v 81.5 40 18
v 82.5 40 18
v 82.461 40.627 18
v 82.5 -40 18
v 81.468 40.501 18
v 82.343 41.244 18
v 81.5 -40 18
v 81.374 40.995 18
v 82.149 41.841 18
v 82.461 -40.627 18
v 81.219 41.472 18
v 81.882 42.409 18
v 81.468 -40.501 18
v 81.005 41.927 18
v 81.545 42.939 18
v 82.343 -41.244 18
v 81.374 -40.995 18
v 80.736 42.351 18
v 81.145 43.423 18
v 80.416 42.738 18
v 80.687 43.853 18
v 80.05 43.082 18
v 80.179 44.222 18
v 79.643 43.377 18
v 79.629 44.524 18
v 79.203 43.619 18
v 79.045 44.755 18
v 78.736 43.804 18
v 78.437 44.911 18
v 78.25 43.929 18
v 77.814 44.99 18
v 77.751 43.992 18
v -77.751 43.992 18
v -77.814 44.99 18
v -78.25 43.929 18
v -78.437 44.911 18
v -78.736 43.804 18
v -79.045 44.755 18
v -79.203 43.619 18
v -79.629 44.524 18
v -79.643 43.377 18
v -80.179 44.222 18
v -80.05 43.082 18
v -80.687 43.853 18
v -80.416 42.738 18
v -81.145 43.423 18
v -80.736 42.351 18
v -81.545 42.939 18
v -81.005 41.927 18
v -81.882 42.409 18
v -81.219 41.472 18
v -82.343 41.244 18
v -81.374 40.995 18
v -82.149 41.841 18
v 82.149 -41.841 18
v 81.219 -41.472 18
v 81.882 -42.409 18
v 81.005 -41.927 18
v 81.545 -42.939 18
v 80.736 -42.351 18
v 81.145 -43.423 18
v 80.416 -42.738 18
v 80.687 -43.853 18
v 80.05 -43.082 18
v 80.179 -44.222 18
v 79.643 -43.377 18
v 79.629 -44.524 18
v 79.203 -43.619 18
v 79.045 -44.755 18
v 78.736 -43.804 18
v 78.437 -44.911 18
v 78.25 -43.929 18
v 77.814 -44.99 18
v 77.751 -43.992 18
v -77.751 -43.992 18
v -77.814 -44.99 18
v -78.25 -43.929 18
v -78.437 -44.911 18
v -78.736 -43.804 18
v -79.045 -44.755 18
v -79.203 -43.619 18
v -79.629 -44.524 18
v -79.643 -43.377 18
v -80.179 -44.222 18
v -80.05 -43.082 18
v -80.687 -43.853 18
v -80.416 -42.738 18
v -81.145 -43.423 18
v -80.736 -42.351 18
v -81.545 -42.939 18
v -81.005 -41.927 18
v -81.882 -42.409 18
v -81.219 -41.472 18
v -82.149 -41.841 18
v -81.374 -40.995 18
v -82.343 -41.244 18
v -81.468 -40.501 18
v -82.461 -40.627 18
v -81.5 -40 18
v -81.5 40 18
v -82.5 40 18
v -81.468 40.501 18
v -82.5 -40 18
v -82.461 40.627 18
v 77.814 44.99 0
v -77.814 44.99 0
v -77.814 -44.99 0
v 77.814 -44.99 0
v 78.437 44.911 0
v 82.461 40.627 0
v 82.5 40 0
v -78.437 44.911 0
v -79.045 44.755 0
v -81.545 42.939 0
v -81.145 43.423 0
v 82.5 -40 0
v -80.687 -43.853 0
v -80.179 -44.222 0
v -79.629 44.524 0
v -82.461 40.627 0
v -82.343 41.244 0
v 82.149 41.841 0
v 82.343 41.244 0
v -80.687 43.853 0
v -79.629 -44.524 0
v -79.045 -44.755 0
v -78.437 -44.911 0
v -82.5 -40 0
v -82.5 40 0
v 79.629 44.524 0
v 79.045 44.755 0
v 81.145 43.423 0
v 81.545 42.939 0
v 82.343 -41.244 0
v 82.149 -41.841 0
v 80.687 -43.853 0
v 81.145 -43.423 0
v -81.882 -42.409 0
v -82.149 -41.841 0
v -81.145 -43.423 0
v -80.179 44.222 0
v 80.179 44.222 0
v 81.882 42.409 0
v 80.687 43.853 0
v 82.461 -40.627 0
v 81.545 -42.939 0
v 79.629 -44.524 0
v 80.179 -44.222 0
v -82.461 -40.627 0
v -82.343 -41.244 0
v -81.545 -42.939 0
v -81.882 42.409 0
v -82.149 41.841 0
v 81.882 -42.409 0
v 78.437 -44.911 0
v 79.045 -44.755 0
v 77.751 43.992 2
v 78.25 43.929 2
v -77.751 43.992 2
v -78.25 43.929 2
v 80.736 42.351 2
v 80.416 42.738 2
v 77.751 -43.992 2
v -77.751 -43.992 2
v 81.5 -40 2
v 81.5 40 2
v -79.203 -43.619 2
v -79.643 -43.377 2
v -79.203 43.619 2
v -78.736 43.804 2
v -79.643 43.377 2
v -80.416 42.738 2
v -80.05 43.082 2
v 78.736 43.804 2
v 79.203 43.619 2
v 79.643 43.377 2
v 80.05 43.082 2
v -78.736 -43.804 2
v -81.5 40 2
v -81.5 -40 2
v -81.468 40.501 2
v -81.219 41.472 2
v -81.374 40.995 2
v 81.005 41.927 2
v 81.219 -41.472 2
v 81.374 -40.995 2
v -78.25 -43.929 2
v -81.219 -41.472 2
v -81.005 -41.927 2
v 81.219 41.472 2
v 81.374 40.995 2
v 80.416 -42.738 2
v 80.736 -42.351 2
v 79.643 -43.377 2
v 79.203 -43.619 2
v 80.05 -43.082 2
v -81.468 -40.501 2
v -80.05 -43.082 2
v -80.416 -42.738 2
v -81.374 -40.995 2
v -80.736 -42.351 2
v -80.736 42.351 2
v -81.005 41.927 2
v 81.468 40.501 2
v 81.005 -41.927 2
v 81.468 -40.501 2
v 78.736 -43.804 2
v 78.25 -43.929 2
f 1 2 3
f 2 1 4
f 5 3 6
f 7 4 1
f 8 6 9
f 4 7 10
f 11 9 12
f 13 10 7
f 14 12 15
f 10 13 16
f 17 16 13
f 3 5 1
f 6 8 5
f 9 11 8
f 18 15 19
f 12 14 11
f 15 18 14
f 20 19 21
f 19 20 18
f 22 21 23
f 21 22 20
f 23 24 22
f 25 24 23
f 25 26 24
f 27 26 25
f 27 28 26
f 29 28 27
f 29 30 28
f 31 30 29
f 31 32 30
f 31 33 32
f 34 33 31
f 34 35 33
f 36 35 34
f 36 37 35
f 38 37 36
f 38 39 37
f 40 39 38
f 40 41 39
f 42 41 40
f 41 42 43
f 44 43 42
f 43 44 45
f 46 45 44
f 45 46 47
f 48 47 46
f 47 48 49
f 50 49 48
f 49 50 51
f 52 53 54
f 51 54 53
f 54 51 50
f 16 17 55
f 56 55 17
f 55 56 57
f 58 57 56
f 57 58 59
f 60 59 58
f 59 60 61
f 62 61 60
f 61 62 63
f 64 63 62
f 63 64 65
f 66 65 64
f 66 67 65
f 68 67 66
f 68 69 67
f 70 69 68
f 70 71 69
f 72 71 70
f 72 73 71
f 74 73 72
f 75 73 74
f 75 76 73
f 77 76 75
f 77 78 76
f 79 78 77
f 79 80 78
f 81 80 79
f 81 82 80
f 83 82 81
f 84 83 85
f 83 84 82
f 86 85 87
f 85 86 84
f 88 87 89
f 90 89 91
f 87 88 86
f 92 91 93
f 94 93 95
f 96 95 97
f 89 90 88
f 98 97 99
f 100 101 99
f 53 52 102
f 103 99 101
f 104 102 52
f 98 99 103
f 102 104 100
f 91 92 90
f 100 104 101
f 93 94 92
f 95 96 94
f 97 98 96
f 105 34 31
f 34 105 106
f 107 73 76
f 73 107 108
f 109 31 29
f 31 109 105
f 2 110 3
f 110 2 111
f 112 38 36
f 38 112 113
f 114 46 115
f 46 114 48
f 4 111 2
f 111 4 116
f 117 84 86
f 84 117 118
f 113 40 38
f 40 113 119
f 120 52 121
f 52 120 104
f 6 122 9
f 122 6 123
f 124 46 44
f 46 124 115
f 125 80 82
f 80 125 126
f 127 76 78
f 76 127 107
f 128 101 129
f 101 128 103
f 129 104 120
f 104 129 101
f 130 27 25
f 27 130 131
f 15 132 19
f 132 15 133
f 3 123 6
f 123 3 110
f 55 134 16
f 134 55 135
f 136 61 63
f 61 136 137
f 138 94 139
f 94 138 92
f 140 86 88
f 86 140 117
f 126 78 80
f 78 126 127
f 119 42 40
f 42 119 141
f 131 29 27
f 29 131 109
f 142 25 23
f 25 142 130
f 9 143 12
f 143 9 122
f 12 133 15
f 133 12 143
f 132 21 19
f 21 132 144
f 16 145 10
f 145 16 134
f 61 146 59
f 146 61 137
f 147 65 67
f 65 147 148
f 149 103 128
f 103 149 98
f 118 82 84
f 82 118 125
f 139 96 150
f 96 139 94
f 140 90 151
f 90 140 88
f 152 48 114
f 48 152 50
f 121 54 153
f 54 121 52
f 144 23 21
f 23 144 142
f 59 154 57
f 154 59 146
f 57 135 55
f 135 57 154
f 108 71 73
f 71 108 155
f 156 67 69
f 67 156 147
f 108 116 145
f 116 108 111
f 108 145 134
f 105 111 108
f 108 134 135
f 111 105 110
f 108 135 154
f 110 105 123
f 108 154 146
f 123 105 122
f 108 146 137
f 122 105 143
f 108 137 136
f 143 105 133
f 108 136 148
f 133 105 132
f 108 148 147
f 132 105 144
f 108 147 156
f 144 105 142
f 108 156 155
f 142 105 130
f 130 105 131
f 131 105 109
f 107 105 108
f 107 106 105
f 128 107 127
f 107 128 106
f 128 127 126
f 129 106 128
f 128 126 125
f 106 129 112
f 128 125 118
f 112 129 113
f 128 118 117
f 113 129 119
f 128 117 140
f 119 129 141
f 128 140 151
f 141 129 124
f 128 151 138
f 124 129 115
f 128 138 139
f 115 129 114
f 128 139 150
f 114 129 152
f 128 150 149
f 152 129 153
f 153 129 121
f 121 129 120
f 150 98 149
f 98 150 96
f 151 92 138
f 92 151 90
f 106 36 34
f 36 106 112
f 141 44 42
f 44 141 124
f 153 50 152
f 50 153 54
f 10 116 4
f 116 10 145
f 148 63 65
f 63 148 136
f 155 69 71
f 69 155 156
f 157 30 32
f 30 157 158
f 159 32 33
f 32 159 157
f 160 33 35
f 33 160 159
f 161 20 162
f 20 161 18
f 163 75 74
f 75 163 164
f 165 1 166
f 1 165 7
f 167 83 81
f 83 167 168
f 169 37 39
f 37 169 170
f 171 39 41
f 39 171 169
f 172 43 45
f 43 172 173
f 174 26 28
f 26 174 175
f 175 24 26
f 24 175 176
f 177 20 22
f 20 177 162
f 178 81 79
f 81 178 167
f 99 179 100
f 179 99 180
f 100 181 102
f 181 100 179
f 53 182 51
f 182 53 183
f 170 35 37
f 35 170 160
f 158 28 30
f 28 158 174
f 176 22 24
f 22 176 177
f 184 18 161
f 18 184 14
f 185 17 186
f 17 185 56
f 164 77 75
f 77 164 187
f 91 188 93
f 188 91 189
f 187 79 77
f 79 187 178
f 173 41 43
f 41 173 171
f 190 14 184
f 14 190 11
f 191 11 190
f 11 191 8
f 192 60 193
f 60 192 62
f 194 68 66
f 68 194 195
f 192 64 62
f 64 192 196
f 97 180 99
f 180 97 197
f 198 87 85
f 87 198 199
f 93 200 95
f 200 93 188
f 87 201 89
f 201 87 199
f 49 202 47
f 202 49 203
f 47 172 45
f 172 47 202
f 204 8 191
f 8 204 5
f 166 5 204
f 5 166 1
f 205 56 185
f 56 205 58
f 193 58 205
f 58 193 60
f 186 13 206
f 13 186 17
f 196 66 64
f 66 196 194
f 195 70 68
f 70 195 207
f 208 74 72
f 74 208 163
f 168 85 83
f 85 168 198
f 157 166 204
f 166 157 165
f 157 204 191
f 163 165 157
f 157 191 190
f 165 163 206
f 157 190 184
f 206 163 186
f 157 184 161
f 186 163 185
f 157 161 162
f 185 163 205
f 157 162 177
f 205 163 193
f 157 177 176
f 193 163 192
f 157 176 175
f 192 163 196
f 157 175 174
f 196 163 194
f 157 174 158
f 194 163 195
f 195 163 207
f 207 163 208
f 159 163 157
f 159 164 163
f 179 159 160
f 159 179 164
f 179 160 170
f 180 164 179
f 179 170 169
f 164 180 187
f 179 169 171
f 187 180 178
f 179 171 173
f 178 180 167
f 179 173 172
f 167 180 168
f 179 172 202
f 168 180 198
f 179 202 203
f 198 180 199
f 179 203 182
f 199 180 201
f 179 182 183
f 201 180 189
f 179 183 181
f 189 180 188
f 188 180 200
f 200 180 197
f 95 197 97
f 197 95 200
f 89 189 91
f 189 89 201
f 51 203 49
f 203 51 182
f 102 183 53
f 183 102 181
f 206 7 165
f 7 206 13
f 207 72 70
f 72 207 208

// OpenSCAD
$fn = 50;


difference() {
	union() {
		hull() {
			translate(v = [-77.5000000000, 40.0000000000, 0]) {
				cylinder(h = 18, r = 5);
			}
			translate(v = [77.5000000000, 40.0000000000, 0]) {
				cylinder(h = 18, r = 5);
			}
			translate(v = [-77.5000000000, -40.0000000000, 0]) {
				cylinder(h = 18, r = 5);
			}
			translate(v = [77.5000000000, -40.0000000000, 0]) {
				cylinder(h = 18, r = 5);
			}
		}
	}
	union() {
		translate(v = [0, 0, 2]) {
			hull() {
				translate(v = [-77.5000000000, 40.0000000000, 0]) {
					cylinder(h = 16, r = 4);
				}
				translate(v = [77.5000000000, 40.0000000000, 0]) {
					cylinder(h = 16, r = 4);
				}
				translate(v = [-77.5000000000, -40.0000000000, 0]) {
					cylinder(h = 16, r = 4);
				}
				translate(v = [77.5000000000, -40.0000000000, 0]) {
					cylinder(h = 16, r = 4);
				}
			}
		}
	}
}
